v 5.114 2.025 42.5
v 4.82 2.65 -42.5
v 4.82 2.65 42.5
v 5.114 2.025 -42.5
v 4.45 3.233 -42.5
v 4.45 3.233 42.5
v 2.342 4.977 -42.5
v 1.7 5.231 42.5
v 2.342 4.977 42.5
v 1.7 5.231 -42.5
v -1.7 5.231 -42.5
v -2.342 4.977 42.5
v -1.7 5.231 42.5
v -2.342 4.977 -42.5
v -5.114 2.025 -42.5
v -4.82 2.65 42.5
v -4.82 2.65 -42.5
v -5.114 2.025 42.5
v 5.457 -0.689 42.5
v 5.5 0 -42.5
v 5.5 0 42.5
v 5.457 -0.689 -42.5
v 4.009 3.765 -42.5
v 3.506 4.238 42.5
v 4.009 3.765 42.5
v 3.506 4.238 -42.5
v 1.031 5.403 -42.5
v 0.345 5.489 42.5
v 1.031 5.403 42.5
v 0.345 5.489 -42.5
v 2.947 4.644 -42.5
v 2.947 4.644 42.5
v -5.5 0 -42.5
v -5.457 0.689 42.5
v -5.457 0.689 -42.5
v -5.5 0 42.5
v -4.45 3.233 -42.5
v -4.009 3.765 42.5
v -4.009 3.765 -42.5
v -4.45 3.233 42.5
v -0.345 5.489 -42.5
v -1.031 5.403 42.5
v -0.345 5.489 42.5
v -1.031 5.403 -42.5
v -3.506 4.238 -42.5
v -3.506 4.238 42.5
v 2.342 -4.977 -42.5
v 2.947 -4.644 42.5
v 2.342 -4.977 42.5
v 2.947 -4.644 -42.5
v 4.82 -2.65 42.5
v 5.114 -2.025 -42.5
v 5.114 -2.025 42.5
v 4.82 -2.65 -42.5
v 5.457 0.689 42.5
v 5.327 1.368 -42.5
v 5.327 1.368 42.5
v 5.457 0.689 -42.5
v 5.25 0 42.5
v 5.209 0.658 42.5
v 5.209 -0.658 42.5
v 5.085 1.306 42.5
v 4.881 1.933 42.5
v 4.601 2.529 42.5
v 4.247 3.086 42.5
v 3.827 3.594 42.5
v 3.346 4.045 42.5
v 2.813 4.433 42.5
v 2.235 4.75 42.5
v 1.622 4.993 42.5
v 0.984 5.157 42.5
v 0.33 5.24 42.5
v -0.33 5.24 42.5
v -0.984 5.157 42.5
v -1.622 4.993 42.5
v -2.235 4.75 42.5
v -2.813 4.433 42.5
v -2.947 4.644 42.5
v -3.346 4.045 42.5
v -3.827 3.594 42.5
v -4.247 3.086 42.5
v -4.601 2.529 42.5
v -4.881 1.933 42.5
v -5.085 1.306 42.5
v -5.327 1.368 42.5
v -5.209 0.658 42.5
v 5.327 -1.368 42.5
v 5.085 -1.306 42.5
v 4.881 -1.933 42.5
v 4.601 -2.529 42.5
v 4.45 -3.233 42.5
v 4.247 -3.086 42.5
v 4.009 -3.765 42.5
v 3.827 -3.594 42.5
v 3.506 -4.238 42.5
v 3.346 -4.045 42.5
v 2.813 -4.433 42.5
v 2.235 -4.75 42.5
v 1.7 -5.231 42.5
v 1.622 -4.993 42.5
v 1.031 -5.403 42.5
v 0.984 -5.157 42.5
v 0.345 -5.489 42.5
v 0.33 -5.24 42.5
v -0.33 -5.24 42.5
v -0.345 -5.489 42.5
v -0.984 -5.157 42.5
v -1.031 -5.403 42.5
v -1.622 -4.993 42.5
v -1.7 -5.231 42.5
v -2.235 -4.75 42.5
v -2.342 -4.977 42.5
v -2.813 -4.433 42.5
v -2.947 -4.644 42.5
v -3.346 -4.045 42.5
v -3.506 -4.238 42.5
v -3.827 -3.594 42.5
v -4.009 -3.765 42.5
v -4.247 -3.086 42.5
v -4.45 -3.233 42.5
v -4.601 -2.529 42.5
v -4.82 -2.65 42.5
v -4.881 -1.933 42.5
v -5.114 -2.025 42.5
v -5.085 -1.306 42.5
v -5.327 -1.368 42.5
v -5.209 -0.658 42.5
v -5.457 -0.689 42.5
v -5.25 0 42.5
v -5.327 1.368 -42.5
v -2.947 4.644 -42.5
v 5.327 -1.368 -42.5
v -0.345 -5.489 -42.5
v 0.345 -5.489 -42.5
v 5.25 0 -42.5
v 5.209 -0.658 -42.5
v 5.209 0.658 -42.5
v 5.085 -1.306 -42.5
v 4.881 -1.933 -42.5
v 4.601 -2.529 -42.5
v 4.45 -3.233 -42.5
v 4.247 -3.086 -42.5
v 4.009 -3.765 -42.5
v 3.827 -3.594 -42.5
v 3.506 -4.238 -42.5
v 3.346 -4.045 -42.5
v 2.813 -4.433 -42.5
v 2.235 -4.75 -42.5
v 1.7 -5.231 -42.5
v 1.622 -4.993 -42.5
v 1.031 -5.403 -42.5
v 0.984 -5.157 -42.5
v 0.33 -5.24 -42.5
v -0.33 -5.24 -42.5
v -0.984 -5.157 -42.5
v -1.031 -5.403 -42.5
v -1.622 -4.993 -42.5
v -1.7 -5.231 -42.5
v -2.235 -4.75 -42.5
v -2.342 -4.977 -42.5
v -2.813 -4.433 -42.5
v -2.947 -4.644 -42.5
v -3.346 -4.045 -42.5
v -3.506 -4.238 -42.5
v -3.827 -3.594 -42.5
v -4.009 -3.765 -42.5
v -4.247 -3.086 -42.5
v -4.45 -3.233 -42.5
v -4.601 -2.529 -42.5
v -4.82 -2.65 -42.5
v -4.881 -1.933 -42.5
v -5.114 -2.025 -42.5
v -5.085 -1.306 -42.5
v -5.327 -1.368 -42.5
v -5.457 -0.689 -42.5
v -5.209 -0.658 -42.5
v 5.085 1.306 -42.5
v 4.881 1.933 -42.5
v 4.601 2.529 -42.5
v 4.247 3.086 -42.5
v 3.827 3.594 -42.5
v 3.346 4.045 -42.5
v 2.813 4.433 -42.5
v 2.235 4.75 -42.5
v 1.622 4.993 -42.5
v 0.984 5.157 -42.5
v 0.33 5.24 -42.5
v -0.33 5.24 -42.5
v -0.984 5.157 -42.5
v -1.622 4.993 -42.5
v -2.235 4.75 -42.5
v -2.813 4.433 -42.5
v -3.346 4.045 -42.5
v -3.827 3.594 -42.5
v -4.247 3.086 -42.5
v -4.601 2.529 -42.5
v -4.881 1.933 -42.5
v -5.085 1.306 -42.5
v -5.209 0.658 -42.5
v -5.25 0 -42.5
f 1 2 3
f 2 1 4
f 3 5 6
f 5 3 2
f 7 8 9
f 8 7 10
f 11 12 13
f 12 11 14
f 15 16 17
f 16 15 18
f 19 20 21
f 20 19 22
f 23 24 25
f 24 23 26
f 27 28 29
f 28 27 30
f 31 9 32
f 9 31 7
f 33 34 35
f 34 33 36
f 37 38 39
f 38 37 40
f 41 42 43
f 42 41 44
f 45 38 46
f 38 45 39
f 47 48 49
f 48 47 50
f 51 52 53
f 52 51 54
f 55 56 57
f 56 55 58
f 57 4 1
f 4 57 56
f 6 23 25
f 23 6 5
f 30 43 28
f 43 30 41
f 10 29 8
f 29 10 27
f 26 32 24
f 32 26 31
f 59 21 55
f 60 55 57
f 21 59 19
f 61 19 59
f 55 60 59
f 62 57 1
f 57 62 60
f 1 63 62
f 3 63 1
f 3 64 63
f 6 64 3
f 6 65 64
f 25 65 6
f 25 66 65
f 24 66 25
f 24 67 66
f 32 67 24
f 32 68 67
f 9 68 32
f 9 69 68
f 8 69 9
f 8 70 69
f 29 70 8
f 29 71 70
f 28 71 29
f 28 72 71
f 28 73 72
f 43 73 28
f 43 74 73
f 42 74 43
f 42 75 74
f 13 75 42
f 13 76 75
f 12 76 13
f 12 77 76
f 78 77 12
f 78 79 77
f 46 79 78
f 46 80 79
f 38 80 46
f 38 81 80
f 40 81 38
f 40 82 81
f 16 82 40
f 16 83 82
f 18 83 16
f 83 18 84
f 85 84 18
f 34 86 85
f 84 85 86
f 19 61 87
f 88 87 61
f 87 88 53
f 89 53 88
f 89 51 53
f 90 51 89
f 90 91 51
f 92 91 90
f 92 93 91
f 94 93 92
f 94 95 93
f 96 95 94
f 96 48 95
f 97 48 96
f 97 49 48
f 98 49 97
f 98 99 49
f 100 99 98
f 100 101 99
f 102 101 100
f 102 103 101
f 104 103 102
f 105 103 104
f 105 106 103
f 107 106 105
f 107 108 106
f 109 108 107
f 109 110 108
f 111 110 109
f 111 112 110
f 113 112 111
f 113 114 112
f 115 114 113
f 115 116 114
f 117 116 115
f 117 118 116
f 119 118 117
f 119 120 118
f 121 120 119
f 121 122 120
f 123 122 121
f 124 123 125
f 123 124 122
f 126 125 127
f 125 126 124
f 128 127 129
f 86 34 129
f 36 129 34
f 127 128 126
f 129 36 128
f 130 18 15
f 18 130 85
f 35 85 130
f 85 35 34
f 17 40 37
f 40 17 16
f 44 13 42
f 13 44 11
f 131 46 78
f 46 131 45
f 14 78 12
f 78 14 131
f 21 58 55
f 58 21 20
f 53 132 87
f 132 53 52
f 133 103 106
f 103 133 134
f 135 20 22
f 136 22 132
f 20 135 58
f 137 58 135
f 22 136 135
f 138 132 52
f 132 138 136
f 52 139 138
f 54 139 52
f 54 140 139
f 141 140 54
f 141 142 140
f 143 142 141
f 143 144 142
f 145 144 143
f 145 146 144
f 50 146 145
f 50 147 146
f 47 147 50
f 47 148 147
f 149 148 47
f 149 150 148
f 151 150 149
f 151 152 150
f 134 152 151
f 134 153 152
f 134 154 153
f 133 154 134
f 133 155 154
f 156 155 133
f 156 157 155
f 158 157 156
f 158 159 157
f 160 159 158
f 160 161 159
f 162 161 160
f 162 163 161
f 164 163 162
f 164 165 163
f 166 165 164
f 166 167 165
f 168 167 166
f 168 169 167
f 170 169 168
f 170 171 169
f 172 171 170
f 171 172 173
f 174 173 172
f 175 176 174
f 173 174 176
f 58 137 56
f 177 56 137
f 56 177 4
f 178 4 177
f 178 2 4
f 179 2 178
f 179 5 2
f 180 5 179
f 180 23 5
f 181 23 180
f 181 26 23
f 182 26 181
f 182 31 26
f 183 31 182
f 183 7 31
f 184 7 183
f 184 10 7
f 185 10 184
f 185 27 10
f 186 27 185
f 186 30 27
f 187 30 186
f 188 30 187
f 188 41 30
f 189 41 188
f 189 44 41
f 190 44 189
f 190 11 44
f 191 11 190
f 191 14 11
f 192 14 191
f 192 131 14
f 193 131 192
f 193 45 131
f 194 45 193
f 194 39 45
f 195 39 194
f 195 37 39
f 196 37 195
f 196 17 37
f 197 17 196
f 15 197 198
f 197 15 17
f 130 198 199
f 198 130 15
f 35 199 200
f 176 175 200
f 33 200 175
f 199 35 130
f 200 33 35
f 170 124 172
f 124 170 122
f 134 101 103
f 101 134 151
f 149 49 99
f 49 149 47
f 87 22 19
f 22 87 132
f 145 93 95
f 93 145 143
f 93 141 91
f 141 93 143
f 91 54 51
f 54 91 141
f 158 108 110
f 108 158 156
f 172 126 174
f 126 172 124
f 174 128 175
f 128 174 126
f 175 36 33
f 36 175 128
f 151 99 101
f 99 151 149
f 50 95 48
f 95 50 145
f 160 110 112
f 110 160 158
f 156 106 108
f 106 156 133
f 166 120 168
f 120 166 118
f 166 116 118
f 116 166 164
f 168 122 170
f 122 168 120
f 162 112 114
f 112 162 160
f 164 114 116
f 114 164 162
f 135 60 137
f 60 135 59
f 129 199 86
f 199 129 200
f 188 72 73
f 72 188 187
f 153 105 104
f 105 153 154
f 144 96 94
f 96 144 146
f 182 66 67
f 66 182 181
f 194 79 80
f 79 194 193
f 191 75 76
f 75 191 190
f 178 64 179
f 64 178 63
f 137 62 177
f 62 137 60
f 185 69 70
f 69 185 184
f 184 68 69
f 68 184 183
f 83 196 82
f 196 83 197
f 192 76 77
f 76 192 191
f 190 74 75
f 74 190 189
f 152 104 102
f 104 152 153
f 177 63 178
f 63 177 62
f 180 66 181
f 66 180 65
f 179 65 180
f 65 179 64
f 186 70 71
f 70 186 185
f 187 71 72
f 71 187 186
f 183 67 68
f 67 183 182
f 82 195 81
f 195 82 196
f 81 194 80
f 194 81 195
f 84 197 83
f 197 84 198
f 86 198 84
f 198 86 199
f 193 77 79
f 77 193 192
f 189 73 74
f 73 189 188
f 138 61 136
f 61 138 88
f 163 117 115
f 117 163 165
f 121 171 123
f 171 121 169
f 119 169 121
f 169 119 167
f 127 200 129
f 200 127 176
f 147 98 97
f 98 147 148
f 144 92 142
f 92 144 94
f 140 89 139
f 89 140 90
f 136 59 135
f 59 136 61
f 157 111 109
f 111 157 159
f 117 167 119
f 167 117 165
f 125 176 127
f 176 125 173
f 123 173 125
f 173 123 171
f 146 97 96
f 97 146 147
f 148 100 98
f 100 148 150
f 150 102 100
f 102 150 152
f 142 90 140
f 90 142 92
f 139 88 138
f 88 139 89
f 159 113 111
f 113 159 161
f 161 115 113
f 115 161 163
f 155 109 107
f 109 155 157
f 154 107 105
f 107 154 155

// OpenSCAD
$fn = 50;


difference() {
	union() {
		translate(v = [0, 0, -42.5000000000]) {
			cylinder(h = 85, r = 5.5000000000);
		}
	}
	union() {
		translate(v = [0, 0, -100.0000000000]) {
			cylinder(h = 200, r = 5.2500000000);
		}
	}
}
